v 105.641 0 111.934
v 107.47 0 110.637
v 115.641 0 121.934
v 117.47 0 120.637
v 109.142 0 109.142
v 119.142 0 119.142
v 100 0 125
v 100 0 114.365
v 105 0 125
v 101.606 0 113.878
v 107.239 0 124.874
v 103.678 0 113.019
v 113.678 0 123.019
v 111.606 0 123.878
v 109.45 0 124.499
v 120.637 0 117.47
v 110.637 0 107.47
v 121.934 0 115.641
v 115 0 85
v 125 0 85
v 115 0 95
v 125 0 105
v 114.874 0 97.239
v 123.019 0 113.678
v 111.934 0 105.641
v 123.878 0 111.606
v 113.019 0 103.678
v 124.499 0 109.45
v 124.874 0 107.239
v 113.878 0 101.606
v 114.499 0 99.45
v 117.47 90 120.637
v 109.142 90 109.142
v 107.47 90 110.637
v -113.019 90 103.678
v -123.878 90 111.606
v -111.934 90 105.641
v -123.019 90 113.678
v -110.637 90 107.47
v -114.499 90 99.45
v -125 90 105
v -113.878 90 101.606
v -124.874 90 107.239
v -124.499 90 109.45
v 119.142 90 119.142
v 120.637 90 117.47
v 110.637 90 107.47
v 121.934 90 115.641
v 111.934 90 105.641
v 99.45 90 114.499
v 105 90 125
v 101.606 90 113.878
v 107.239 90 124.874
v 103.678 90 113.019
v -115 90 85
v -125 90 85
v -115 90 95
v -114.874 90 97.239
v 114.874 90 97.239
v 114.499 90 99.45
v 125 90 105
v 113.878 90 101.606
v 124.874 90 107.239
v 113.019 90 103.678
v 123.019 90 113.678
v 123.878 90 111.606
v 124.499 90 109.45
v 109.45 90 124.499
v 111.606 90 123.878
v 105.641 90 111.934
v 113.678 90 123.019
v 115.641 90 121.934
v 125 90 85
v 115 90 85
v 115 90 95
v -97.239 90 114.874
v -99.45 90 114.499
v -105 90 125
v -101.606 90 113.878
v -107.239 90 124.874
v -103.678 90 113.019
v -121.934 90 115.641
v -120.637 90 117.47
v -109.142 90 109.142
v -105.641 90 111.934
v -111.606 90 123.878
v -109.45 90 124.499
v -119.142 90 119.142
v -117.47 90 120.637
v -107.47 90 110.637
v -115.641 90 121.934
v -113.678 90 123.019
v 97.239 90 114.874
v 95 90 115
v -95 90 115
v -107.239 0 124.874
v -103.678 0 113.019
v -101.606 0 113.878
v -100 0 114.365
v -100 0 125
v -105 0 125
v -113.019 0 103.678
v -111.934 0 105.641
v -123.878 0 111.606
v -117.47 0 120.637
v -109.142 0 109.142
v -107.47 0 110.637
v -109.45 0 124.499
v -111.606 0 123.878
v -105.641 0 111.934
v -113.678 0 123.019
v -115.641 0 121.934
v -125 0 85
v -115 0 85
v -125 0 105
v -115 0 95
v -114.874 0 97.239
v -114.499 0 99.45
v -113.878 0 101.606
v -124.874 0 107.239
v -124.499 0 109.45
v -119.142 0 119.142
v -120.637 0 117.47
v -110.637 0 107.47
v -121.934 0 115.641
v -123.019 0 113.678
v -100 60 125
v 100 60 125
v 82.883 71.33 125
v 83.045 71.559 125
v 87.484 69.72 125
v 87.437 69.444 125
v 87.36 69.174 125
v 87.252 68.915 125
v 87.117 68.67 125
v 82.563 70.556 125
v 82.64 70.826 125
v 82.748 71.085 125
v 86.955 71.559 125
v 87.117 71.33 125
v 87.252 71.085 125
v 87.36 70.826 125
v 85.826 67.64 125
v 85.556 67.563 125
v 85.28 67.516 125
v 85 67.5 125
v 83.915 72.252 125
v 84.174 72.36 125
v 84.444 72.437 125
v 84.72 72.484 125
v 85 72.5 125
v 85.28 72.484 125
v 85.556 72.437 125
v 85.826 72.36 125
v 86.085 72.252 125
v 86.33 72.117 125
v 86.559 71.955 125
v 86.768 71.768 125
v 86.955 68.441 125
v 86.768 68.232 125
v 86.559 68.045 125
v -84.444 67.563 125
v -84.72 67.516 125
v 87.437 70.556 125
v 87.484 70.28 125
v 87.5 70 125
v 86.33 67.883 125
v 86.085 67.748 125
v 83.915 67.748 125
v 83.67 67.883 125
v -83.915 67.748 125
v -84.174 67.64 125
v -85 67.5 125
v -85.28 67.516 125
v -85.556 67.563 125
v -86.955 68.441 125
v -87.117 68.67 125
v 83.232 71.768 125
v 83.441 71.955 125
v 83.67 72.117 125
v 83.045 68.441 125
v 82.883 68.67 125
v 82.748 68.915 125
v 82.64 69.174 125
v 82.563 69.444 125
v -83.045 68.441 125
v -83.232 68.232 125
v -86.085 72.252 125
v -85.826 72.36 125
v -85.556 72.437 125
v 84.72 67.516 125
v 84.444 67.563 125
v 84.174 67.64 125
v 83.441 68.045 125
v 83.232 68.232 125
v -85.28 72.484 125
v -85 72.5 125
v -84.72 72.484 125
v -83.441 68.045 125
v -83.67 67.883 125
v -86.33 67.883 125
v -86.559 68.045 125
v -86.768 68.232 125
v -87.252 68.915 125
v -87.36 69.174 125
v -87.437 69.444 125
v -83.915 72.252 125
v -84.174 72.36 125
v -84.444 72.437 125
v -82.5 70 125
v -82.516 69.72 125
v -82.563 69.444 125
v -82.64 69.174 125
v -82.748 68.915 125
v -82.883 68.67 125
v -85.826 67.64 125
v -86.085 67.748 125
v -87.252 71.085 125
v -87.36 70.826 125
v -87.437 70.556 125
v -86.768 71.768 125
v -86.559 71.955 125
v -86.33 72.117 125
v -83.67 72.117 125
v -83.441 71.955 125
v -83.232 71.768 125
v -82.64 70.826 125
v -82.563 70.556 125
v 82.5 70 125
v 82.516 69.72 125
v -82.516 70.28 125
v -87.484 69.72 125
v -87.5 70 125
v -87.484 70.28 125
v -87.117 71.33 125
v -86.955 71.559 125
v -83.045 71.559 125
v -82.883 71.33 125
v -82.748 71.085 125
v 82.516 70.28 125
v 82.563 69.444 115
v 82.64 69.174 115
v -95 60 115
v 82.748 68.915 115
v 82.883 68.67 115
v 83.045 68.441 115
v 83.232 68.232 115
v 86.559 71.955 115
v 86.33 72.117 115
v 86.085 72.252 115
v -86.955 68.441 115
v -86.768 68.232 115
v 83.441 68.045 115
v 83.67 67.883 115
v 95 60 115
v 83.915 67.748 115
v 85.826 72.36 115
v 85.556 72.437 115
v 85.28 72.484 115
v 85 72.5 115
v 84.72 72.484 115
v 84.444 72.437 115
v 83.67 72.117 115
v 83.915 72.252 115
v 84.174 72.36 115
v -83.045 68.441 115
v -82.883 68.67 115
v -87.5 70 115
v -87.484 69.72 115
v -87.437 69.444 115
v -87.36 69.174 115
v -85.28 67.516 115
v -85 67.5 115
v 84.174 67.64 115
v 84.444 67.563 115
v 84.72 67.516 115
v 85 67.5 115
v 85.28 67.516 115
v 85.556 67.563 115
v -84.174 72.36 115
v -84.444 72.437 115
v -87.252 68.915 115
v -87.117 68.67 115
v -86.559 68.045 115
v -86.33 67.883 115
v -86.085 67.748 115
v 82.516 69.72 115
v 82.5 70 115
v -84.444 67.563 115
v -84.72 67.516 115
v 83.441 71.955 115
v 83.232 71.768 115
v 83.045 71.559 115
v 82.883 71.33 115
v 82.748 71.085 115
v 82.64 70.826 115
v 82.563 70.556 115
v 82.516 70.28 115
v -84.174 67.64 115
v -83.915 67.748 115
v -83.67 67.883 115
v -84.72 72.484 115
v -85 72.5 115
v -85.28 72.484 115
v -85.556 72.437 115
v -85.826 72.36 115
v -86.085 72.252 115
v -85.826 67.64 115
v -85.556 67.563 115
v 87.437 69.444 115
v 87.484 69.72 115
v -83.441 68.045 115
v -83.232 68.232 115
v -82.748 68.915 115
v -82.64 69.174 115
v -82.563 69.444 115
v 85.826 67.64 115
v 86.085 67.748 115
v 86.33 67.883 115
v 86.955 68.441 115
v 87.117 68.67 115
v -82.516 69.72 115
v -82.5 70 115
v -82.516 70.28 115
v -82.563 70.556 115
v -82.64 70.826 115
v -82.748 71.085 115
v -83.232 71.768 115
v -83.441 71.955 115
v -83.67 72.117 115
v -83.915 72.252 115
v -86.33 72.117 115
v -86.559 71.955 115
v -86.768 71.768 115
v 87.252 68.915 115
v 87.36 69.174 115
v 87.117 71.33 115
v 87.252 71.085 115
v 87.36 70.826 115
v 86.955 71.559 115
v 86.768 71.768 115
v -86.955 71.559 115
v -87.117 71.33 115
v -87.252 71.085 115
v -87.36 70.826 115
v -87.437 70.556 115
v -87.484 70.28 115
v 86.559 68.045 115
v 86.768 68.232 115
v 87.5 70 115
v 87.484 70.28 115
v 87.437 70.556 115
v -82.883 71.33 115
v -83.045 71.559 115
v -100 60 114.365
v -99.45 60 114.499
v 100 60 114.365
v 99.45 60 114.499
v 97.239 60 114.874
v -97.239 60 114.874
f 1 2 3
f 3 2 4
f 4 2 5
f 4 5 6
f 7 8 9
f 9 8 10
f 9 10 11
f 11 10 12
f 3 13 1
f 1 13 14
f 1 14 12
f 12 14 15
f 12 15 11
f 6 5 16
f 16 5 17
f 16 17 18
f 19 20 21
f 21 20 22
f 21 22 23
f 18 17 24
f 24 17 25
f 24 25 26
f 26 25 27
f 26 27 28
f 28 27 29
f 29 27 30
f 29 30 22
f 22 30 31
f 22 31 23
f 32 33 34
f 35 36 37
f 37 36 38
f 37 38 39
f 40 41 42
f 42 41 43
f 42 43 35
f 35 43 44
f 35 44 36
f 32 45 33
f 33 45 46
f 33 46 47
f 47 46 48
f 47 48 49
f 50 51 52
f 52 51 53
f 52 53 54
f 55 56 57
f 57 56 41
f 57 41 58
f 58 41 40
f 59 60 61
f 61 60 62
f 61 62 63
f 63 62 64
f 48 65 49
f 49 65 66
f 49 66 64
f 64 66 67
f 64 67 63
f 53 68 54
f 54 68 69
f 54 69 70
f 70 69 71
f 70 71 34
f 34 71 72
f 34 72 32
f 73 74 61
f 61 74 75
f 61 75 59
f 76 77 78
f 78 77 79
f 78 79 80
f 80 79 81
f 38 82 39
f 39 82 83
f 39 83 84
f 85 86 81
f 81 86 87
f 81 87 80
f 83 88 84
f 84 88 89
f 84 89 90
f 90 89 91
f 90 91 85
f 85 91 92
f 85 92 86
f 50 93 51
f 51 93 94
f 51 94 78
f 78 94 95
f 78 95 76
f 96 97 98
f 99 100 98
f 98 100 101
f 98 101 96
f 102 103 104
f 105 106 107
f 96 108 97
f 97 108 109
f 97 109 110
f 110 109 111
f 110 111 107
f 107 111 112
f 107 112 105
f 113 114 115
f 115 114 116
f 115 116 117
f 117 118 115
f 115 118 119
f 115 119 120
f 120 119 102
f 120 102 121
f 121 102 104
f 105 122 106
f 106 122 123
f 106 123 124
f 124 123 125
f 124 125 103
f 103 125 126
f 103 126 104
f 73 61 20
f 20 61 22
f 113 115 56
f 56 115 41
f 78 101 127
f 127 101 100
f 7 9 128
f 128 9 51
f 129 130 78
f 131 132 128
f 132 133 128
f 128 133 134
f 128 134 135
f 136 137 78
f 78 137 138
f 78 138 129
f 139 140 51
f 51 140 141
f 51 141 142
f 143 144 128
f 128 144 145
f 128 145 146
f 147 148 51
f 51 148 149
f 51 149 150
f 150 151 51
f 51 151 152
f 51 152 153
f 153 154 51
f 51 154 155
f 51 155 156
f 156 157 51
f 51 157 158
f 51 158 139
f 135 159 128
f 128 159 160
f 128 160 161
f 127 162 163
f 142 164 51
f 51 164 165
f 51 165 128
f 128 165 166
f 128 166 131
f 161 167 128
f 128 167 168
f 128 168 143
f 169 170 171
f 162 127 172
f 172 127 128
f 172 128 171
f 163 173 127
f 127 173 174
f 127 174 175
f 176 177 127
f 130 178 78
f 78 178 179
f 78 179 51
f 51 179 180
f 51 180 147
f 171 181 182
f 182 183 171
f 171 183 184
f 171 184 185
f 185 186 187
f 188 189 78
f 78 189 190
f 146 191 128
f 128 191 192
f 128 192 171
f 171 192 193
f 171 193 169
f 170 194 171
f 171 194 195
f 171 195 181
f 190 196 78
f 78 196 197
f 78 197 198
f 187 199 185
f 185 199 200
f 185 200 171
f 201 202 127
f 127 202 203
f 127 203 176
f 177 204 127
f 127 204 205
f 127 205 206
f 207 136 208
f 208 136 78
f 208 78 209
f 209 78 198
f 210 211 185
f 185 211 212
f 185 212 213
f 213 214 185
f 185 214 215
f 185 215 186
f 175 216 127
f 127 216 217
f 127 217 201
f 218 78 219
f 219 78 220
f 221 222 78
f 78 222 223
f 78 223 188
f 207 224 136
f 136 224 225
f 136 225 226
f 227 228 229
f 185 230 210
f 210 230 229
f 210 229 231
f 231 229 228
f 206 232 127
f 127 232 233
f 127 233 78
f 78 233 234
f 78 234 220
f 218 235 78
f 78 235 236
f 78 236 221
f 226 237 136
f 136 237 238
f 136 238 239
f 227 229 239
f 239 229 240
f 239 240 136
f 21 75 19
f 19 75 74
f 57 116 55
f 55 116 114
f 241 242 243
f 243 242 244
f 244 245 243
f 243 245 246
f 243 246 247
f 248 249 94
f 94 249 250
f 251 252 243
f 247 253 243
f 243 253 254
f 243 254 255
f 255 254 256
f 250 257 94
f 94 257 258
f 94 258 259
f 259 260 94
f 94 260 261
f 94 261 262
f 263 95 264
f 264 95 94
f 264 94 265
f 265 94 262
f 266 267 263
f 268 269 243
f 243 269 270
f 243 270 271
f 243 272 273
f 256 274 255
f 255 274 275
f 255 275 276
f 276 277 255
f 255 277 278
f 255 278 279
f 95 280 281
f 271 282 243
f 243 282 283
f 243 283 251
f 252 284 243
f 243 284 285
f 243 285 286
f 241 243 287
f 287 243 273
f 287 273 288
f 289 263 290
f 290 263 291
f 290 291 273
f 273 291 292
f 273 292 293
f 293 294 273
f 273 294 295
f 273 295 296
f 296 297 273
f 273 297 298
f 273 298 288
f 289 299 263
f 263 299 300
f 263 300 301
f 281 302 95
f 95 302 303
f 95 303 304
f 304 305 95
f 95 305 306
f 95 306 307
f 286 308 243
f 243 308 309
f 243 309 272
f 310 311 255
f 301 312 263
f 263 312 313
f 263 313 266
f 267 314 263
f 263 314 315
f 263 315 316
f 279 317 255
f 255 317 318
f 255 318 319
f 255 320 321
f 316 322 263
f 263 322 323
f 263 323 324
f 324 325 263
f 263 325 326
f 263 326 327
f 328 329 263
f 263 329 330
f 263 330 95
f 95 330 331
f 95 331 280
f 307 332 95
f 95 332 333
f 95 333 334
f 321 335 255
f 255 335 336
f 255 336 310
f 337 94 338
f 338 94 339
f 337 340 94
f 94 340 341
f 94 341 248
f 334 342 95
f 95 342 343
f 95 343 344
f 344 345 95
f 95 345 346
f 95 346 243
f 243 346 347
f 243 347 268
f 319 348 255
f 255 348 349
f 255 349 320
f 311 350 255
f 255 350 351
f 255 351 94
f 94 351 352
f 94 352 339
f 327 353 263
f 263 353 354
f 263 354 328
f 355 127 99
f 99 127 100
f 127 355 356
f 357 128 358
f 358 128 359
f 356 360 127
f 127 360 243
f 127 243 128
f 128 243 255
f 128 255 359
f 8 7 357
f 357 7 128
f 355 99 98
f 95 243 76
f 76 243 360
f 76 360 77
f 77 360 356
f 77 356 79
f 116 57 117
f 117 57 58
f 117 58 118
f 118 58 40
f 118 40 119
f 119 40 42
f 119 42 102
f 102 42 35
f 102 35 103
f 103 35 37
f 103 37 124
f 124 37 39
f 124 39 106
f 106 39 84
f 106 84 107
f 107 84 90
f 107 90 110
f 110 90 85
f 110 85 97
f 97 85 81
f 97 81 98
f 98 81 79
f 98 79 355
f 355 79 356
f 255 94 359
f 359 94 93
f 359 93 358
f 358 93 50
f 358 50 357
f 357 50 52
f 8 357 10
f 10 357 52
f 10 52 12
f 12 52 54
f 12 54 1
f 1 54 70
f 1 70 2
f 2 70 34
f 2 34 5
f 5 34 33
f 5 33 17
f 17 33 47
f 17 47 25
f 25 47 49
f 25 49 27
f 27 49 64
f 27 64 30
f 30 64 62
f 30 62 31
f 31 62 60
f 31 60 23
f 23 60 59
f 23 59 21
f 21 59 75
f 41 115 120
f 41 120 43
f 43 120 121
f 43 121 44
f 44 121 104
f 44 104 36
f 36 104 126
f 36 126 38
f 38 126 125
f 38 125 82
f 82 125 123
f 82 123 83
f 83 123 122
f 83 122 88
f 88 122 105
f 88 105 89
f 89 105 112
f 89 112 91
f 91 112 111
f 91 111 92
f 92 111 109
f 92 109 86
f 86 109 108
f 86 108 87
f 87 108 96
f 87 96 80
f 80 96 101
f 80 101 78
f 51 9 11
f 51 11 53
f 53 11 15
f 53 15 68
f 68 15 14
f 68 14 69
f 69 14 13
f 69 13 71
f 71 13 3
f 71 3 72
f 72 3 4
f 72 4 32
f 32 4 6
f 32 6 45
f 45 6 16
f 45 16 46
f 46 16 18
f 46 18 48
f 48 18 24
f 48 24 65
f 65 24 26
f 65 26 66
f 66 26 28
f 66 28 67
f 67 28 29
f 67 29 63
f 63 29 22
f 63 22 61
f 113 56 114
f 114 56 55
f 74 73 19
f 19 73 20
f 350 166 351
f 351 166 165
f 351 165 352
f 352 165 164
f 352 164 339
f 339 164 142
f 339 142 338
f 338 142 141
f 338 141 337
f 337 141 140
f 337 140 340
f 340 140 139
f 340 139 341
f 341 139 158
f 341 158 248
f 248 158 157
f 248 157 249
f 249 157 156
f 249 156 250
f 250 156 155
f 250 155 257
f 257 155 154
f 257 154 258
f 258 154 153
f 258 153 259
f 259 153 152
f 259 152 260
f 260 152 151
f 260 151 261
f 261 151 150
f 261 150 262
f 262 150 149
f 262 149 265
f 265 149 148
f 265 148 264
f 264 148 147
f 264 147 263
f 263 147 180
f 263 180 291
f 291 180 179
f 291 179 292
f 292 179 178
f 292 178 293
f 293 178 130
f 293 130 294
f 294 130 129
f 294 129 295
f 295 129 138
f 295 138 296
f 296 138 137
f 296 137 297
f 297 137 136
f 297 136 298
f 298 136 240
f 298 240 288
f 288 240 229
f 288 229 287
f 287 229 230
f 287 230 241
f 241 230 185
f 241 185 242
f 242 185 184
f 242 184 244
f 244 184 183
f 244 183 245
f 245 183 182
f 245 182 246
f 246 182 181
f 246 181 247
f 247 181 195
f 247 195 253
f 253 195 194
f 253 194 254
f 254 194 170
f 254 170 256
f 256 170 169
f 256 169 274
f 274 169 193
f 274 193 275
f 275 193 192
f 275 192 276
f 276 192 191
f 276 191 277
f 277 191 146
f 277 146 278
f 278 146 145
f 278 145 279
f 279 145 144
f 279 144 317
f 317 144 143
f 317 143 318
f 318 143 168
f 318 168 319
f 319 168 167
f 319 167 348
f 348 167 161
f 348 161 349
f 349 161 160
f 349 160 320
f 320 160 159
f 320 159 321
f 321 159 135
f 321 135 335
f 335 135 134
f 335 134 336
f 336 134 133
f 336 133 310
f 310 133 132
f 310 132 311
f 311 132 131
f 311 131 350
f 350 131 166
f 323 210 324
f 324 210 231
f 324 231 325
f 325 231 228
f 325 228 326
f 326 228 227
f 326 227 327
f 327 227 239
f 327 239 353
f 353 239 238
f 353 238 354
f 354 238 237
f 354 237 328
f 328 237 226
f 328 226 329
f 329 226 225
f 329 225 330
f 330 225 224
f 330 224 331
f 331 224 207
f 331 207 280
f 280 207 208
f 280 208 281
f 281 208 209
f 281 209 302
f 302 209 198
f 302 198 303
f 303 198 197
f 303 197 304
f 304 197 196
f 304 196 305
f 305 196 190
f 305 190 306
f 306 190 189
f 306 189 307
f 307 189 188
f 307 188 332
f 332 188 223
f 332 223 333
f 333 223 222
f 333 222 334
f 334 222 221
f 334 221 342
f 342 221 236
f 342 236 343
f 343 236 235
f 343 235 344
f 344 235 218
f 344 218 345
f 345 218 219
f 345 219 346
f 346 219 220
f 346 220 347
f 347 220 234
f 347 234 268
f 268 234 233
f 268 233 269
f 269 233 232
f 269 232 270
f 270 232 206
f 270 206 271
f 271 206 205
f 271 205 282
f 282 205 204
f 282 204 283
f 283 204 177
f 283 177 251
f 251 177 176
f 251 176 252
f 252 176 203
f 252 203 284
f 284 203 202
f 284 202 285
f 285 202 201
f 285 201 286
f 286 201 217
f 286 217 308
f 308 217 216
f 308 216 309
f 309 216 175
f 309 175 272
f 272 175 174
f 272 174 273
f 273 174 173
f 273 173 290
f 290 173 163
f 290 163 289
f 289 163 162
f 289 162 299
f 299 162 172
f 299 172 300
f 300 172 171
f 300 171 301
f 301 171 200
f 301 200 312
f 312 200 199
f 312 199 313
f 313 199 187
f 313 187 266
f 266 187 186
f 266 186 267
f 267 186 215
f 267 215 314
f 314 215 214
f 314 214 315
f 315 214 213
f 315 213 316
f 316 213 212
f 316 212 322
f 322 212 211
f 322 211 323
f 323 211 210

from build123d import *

# Parameters (mm, degrees)
SKETCH1_W               = 250
SKETCH1_H               = 250
SKETCH1_W_2             = 230
SKETCH1_H_2             = 230
BOSS_EXTRUDE1_DEPTH     = 90
SKETCH2_W               = 200
SKETCH2_H               = 60
CUT_EXTRUDE1_DEPTH      = 50
FILLET1_R               = 20
SKETCH10_W              = 210
SKETCH10_H              = 90
CUT_EXTRUDE6_DEPTH      = 1
CUT_EXTRUDE6_DEPTH_BACK = 251
SKETCH11_R              = 2.5
CUT_EXTRUDE7_DEPTH      = 10


with BuildPart() as part:
    # Sketch1 → Boss-Extrude1 (new body)
    with BuildSketch(Plane(origin=(0, 0, 0), x_dir=(1, 0, 0), z_dir=(0, 1, 0))):
        Rectangle(SKETCH1_W, SKETCH1_H)
        Rectangle(SKETCH1_W_2, SKETCH1_H_2, mode=Mode.SUBTRACT)
    extrude(amount=BOSS_EXTRUDE1_DEPTH)

    # Sketch2 → Cut-Extrude1 (cut)
    with BuildSketch(Plane.XY.offset(125)):
        with Locations((0, 30)):
            Rectangle(SKETCH2_W, SKETCH2_H)
    extrude(amount=-CUT_EXTRUDE1_DEPTH, mode=Mode.SUBTRACT)

    # Fillet1
    fillet1_edges = [part.edges().sort_by_distance(p)[0] for p in [
        (-115, 45, 115),
        (115, 45, 115),
        (115, 45, -115),
        (-115, 45, -115),
        (-125, 45, 125),
        (125, 45, 125),
        (125, 45, -125),
        (-125, 45, -125),
    ]]
    fillet(fillet1_edges, radius=FILLET1_R)

    # Sketch10 → Cut-Extrude6 (cut, two sides)
    with BuildSketch(Plane(origin=(125, 0, 0), x_dir=(0, 0, -1), z_dir=(1, 0, 0))) as cut_extrude6_sk:
        with Locations((20, 45)):
            Rectangle(SKETCH10_W, SKETCH10_H)
    extrude(amount=CUT_EXTRUDE6_DEPTH, mode=Mode.SUBTRACT)
    extrude(cut_extrude6_sk.sketch, amount=-CUT_EXTRUDE6_DEPTH_BACK, mode=Mode.SUBTRACT)

    # Sketch11 → Cut-Extrude7 (cut)
    with BuildSketch(Plane.XY.offset(125)):
        with Locations((-85, 70)):
            Circle(SKETCH11_R)
        with Locations((85, 70)):
            Circle(SKETCH11_R)
    extrude(amount=-CUT_EXTRUDE7_DEPTH, mode=Mode.SUBTRACT)


solid = part.part
